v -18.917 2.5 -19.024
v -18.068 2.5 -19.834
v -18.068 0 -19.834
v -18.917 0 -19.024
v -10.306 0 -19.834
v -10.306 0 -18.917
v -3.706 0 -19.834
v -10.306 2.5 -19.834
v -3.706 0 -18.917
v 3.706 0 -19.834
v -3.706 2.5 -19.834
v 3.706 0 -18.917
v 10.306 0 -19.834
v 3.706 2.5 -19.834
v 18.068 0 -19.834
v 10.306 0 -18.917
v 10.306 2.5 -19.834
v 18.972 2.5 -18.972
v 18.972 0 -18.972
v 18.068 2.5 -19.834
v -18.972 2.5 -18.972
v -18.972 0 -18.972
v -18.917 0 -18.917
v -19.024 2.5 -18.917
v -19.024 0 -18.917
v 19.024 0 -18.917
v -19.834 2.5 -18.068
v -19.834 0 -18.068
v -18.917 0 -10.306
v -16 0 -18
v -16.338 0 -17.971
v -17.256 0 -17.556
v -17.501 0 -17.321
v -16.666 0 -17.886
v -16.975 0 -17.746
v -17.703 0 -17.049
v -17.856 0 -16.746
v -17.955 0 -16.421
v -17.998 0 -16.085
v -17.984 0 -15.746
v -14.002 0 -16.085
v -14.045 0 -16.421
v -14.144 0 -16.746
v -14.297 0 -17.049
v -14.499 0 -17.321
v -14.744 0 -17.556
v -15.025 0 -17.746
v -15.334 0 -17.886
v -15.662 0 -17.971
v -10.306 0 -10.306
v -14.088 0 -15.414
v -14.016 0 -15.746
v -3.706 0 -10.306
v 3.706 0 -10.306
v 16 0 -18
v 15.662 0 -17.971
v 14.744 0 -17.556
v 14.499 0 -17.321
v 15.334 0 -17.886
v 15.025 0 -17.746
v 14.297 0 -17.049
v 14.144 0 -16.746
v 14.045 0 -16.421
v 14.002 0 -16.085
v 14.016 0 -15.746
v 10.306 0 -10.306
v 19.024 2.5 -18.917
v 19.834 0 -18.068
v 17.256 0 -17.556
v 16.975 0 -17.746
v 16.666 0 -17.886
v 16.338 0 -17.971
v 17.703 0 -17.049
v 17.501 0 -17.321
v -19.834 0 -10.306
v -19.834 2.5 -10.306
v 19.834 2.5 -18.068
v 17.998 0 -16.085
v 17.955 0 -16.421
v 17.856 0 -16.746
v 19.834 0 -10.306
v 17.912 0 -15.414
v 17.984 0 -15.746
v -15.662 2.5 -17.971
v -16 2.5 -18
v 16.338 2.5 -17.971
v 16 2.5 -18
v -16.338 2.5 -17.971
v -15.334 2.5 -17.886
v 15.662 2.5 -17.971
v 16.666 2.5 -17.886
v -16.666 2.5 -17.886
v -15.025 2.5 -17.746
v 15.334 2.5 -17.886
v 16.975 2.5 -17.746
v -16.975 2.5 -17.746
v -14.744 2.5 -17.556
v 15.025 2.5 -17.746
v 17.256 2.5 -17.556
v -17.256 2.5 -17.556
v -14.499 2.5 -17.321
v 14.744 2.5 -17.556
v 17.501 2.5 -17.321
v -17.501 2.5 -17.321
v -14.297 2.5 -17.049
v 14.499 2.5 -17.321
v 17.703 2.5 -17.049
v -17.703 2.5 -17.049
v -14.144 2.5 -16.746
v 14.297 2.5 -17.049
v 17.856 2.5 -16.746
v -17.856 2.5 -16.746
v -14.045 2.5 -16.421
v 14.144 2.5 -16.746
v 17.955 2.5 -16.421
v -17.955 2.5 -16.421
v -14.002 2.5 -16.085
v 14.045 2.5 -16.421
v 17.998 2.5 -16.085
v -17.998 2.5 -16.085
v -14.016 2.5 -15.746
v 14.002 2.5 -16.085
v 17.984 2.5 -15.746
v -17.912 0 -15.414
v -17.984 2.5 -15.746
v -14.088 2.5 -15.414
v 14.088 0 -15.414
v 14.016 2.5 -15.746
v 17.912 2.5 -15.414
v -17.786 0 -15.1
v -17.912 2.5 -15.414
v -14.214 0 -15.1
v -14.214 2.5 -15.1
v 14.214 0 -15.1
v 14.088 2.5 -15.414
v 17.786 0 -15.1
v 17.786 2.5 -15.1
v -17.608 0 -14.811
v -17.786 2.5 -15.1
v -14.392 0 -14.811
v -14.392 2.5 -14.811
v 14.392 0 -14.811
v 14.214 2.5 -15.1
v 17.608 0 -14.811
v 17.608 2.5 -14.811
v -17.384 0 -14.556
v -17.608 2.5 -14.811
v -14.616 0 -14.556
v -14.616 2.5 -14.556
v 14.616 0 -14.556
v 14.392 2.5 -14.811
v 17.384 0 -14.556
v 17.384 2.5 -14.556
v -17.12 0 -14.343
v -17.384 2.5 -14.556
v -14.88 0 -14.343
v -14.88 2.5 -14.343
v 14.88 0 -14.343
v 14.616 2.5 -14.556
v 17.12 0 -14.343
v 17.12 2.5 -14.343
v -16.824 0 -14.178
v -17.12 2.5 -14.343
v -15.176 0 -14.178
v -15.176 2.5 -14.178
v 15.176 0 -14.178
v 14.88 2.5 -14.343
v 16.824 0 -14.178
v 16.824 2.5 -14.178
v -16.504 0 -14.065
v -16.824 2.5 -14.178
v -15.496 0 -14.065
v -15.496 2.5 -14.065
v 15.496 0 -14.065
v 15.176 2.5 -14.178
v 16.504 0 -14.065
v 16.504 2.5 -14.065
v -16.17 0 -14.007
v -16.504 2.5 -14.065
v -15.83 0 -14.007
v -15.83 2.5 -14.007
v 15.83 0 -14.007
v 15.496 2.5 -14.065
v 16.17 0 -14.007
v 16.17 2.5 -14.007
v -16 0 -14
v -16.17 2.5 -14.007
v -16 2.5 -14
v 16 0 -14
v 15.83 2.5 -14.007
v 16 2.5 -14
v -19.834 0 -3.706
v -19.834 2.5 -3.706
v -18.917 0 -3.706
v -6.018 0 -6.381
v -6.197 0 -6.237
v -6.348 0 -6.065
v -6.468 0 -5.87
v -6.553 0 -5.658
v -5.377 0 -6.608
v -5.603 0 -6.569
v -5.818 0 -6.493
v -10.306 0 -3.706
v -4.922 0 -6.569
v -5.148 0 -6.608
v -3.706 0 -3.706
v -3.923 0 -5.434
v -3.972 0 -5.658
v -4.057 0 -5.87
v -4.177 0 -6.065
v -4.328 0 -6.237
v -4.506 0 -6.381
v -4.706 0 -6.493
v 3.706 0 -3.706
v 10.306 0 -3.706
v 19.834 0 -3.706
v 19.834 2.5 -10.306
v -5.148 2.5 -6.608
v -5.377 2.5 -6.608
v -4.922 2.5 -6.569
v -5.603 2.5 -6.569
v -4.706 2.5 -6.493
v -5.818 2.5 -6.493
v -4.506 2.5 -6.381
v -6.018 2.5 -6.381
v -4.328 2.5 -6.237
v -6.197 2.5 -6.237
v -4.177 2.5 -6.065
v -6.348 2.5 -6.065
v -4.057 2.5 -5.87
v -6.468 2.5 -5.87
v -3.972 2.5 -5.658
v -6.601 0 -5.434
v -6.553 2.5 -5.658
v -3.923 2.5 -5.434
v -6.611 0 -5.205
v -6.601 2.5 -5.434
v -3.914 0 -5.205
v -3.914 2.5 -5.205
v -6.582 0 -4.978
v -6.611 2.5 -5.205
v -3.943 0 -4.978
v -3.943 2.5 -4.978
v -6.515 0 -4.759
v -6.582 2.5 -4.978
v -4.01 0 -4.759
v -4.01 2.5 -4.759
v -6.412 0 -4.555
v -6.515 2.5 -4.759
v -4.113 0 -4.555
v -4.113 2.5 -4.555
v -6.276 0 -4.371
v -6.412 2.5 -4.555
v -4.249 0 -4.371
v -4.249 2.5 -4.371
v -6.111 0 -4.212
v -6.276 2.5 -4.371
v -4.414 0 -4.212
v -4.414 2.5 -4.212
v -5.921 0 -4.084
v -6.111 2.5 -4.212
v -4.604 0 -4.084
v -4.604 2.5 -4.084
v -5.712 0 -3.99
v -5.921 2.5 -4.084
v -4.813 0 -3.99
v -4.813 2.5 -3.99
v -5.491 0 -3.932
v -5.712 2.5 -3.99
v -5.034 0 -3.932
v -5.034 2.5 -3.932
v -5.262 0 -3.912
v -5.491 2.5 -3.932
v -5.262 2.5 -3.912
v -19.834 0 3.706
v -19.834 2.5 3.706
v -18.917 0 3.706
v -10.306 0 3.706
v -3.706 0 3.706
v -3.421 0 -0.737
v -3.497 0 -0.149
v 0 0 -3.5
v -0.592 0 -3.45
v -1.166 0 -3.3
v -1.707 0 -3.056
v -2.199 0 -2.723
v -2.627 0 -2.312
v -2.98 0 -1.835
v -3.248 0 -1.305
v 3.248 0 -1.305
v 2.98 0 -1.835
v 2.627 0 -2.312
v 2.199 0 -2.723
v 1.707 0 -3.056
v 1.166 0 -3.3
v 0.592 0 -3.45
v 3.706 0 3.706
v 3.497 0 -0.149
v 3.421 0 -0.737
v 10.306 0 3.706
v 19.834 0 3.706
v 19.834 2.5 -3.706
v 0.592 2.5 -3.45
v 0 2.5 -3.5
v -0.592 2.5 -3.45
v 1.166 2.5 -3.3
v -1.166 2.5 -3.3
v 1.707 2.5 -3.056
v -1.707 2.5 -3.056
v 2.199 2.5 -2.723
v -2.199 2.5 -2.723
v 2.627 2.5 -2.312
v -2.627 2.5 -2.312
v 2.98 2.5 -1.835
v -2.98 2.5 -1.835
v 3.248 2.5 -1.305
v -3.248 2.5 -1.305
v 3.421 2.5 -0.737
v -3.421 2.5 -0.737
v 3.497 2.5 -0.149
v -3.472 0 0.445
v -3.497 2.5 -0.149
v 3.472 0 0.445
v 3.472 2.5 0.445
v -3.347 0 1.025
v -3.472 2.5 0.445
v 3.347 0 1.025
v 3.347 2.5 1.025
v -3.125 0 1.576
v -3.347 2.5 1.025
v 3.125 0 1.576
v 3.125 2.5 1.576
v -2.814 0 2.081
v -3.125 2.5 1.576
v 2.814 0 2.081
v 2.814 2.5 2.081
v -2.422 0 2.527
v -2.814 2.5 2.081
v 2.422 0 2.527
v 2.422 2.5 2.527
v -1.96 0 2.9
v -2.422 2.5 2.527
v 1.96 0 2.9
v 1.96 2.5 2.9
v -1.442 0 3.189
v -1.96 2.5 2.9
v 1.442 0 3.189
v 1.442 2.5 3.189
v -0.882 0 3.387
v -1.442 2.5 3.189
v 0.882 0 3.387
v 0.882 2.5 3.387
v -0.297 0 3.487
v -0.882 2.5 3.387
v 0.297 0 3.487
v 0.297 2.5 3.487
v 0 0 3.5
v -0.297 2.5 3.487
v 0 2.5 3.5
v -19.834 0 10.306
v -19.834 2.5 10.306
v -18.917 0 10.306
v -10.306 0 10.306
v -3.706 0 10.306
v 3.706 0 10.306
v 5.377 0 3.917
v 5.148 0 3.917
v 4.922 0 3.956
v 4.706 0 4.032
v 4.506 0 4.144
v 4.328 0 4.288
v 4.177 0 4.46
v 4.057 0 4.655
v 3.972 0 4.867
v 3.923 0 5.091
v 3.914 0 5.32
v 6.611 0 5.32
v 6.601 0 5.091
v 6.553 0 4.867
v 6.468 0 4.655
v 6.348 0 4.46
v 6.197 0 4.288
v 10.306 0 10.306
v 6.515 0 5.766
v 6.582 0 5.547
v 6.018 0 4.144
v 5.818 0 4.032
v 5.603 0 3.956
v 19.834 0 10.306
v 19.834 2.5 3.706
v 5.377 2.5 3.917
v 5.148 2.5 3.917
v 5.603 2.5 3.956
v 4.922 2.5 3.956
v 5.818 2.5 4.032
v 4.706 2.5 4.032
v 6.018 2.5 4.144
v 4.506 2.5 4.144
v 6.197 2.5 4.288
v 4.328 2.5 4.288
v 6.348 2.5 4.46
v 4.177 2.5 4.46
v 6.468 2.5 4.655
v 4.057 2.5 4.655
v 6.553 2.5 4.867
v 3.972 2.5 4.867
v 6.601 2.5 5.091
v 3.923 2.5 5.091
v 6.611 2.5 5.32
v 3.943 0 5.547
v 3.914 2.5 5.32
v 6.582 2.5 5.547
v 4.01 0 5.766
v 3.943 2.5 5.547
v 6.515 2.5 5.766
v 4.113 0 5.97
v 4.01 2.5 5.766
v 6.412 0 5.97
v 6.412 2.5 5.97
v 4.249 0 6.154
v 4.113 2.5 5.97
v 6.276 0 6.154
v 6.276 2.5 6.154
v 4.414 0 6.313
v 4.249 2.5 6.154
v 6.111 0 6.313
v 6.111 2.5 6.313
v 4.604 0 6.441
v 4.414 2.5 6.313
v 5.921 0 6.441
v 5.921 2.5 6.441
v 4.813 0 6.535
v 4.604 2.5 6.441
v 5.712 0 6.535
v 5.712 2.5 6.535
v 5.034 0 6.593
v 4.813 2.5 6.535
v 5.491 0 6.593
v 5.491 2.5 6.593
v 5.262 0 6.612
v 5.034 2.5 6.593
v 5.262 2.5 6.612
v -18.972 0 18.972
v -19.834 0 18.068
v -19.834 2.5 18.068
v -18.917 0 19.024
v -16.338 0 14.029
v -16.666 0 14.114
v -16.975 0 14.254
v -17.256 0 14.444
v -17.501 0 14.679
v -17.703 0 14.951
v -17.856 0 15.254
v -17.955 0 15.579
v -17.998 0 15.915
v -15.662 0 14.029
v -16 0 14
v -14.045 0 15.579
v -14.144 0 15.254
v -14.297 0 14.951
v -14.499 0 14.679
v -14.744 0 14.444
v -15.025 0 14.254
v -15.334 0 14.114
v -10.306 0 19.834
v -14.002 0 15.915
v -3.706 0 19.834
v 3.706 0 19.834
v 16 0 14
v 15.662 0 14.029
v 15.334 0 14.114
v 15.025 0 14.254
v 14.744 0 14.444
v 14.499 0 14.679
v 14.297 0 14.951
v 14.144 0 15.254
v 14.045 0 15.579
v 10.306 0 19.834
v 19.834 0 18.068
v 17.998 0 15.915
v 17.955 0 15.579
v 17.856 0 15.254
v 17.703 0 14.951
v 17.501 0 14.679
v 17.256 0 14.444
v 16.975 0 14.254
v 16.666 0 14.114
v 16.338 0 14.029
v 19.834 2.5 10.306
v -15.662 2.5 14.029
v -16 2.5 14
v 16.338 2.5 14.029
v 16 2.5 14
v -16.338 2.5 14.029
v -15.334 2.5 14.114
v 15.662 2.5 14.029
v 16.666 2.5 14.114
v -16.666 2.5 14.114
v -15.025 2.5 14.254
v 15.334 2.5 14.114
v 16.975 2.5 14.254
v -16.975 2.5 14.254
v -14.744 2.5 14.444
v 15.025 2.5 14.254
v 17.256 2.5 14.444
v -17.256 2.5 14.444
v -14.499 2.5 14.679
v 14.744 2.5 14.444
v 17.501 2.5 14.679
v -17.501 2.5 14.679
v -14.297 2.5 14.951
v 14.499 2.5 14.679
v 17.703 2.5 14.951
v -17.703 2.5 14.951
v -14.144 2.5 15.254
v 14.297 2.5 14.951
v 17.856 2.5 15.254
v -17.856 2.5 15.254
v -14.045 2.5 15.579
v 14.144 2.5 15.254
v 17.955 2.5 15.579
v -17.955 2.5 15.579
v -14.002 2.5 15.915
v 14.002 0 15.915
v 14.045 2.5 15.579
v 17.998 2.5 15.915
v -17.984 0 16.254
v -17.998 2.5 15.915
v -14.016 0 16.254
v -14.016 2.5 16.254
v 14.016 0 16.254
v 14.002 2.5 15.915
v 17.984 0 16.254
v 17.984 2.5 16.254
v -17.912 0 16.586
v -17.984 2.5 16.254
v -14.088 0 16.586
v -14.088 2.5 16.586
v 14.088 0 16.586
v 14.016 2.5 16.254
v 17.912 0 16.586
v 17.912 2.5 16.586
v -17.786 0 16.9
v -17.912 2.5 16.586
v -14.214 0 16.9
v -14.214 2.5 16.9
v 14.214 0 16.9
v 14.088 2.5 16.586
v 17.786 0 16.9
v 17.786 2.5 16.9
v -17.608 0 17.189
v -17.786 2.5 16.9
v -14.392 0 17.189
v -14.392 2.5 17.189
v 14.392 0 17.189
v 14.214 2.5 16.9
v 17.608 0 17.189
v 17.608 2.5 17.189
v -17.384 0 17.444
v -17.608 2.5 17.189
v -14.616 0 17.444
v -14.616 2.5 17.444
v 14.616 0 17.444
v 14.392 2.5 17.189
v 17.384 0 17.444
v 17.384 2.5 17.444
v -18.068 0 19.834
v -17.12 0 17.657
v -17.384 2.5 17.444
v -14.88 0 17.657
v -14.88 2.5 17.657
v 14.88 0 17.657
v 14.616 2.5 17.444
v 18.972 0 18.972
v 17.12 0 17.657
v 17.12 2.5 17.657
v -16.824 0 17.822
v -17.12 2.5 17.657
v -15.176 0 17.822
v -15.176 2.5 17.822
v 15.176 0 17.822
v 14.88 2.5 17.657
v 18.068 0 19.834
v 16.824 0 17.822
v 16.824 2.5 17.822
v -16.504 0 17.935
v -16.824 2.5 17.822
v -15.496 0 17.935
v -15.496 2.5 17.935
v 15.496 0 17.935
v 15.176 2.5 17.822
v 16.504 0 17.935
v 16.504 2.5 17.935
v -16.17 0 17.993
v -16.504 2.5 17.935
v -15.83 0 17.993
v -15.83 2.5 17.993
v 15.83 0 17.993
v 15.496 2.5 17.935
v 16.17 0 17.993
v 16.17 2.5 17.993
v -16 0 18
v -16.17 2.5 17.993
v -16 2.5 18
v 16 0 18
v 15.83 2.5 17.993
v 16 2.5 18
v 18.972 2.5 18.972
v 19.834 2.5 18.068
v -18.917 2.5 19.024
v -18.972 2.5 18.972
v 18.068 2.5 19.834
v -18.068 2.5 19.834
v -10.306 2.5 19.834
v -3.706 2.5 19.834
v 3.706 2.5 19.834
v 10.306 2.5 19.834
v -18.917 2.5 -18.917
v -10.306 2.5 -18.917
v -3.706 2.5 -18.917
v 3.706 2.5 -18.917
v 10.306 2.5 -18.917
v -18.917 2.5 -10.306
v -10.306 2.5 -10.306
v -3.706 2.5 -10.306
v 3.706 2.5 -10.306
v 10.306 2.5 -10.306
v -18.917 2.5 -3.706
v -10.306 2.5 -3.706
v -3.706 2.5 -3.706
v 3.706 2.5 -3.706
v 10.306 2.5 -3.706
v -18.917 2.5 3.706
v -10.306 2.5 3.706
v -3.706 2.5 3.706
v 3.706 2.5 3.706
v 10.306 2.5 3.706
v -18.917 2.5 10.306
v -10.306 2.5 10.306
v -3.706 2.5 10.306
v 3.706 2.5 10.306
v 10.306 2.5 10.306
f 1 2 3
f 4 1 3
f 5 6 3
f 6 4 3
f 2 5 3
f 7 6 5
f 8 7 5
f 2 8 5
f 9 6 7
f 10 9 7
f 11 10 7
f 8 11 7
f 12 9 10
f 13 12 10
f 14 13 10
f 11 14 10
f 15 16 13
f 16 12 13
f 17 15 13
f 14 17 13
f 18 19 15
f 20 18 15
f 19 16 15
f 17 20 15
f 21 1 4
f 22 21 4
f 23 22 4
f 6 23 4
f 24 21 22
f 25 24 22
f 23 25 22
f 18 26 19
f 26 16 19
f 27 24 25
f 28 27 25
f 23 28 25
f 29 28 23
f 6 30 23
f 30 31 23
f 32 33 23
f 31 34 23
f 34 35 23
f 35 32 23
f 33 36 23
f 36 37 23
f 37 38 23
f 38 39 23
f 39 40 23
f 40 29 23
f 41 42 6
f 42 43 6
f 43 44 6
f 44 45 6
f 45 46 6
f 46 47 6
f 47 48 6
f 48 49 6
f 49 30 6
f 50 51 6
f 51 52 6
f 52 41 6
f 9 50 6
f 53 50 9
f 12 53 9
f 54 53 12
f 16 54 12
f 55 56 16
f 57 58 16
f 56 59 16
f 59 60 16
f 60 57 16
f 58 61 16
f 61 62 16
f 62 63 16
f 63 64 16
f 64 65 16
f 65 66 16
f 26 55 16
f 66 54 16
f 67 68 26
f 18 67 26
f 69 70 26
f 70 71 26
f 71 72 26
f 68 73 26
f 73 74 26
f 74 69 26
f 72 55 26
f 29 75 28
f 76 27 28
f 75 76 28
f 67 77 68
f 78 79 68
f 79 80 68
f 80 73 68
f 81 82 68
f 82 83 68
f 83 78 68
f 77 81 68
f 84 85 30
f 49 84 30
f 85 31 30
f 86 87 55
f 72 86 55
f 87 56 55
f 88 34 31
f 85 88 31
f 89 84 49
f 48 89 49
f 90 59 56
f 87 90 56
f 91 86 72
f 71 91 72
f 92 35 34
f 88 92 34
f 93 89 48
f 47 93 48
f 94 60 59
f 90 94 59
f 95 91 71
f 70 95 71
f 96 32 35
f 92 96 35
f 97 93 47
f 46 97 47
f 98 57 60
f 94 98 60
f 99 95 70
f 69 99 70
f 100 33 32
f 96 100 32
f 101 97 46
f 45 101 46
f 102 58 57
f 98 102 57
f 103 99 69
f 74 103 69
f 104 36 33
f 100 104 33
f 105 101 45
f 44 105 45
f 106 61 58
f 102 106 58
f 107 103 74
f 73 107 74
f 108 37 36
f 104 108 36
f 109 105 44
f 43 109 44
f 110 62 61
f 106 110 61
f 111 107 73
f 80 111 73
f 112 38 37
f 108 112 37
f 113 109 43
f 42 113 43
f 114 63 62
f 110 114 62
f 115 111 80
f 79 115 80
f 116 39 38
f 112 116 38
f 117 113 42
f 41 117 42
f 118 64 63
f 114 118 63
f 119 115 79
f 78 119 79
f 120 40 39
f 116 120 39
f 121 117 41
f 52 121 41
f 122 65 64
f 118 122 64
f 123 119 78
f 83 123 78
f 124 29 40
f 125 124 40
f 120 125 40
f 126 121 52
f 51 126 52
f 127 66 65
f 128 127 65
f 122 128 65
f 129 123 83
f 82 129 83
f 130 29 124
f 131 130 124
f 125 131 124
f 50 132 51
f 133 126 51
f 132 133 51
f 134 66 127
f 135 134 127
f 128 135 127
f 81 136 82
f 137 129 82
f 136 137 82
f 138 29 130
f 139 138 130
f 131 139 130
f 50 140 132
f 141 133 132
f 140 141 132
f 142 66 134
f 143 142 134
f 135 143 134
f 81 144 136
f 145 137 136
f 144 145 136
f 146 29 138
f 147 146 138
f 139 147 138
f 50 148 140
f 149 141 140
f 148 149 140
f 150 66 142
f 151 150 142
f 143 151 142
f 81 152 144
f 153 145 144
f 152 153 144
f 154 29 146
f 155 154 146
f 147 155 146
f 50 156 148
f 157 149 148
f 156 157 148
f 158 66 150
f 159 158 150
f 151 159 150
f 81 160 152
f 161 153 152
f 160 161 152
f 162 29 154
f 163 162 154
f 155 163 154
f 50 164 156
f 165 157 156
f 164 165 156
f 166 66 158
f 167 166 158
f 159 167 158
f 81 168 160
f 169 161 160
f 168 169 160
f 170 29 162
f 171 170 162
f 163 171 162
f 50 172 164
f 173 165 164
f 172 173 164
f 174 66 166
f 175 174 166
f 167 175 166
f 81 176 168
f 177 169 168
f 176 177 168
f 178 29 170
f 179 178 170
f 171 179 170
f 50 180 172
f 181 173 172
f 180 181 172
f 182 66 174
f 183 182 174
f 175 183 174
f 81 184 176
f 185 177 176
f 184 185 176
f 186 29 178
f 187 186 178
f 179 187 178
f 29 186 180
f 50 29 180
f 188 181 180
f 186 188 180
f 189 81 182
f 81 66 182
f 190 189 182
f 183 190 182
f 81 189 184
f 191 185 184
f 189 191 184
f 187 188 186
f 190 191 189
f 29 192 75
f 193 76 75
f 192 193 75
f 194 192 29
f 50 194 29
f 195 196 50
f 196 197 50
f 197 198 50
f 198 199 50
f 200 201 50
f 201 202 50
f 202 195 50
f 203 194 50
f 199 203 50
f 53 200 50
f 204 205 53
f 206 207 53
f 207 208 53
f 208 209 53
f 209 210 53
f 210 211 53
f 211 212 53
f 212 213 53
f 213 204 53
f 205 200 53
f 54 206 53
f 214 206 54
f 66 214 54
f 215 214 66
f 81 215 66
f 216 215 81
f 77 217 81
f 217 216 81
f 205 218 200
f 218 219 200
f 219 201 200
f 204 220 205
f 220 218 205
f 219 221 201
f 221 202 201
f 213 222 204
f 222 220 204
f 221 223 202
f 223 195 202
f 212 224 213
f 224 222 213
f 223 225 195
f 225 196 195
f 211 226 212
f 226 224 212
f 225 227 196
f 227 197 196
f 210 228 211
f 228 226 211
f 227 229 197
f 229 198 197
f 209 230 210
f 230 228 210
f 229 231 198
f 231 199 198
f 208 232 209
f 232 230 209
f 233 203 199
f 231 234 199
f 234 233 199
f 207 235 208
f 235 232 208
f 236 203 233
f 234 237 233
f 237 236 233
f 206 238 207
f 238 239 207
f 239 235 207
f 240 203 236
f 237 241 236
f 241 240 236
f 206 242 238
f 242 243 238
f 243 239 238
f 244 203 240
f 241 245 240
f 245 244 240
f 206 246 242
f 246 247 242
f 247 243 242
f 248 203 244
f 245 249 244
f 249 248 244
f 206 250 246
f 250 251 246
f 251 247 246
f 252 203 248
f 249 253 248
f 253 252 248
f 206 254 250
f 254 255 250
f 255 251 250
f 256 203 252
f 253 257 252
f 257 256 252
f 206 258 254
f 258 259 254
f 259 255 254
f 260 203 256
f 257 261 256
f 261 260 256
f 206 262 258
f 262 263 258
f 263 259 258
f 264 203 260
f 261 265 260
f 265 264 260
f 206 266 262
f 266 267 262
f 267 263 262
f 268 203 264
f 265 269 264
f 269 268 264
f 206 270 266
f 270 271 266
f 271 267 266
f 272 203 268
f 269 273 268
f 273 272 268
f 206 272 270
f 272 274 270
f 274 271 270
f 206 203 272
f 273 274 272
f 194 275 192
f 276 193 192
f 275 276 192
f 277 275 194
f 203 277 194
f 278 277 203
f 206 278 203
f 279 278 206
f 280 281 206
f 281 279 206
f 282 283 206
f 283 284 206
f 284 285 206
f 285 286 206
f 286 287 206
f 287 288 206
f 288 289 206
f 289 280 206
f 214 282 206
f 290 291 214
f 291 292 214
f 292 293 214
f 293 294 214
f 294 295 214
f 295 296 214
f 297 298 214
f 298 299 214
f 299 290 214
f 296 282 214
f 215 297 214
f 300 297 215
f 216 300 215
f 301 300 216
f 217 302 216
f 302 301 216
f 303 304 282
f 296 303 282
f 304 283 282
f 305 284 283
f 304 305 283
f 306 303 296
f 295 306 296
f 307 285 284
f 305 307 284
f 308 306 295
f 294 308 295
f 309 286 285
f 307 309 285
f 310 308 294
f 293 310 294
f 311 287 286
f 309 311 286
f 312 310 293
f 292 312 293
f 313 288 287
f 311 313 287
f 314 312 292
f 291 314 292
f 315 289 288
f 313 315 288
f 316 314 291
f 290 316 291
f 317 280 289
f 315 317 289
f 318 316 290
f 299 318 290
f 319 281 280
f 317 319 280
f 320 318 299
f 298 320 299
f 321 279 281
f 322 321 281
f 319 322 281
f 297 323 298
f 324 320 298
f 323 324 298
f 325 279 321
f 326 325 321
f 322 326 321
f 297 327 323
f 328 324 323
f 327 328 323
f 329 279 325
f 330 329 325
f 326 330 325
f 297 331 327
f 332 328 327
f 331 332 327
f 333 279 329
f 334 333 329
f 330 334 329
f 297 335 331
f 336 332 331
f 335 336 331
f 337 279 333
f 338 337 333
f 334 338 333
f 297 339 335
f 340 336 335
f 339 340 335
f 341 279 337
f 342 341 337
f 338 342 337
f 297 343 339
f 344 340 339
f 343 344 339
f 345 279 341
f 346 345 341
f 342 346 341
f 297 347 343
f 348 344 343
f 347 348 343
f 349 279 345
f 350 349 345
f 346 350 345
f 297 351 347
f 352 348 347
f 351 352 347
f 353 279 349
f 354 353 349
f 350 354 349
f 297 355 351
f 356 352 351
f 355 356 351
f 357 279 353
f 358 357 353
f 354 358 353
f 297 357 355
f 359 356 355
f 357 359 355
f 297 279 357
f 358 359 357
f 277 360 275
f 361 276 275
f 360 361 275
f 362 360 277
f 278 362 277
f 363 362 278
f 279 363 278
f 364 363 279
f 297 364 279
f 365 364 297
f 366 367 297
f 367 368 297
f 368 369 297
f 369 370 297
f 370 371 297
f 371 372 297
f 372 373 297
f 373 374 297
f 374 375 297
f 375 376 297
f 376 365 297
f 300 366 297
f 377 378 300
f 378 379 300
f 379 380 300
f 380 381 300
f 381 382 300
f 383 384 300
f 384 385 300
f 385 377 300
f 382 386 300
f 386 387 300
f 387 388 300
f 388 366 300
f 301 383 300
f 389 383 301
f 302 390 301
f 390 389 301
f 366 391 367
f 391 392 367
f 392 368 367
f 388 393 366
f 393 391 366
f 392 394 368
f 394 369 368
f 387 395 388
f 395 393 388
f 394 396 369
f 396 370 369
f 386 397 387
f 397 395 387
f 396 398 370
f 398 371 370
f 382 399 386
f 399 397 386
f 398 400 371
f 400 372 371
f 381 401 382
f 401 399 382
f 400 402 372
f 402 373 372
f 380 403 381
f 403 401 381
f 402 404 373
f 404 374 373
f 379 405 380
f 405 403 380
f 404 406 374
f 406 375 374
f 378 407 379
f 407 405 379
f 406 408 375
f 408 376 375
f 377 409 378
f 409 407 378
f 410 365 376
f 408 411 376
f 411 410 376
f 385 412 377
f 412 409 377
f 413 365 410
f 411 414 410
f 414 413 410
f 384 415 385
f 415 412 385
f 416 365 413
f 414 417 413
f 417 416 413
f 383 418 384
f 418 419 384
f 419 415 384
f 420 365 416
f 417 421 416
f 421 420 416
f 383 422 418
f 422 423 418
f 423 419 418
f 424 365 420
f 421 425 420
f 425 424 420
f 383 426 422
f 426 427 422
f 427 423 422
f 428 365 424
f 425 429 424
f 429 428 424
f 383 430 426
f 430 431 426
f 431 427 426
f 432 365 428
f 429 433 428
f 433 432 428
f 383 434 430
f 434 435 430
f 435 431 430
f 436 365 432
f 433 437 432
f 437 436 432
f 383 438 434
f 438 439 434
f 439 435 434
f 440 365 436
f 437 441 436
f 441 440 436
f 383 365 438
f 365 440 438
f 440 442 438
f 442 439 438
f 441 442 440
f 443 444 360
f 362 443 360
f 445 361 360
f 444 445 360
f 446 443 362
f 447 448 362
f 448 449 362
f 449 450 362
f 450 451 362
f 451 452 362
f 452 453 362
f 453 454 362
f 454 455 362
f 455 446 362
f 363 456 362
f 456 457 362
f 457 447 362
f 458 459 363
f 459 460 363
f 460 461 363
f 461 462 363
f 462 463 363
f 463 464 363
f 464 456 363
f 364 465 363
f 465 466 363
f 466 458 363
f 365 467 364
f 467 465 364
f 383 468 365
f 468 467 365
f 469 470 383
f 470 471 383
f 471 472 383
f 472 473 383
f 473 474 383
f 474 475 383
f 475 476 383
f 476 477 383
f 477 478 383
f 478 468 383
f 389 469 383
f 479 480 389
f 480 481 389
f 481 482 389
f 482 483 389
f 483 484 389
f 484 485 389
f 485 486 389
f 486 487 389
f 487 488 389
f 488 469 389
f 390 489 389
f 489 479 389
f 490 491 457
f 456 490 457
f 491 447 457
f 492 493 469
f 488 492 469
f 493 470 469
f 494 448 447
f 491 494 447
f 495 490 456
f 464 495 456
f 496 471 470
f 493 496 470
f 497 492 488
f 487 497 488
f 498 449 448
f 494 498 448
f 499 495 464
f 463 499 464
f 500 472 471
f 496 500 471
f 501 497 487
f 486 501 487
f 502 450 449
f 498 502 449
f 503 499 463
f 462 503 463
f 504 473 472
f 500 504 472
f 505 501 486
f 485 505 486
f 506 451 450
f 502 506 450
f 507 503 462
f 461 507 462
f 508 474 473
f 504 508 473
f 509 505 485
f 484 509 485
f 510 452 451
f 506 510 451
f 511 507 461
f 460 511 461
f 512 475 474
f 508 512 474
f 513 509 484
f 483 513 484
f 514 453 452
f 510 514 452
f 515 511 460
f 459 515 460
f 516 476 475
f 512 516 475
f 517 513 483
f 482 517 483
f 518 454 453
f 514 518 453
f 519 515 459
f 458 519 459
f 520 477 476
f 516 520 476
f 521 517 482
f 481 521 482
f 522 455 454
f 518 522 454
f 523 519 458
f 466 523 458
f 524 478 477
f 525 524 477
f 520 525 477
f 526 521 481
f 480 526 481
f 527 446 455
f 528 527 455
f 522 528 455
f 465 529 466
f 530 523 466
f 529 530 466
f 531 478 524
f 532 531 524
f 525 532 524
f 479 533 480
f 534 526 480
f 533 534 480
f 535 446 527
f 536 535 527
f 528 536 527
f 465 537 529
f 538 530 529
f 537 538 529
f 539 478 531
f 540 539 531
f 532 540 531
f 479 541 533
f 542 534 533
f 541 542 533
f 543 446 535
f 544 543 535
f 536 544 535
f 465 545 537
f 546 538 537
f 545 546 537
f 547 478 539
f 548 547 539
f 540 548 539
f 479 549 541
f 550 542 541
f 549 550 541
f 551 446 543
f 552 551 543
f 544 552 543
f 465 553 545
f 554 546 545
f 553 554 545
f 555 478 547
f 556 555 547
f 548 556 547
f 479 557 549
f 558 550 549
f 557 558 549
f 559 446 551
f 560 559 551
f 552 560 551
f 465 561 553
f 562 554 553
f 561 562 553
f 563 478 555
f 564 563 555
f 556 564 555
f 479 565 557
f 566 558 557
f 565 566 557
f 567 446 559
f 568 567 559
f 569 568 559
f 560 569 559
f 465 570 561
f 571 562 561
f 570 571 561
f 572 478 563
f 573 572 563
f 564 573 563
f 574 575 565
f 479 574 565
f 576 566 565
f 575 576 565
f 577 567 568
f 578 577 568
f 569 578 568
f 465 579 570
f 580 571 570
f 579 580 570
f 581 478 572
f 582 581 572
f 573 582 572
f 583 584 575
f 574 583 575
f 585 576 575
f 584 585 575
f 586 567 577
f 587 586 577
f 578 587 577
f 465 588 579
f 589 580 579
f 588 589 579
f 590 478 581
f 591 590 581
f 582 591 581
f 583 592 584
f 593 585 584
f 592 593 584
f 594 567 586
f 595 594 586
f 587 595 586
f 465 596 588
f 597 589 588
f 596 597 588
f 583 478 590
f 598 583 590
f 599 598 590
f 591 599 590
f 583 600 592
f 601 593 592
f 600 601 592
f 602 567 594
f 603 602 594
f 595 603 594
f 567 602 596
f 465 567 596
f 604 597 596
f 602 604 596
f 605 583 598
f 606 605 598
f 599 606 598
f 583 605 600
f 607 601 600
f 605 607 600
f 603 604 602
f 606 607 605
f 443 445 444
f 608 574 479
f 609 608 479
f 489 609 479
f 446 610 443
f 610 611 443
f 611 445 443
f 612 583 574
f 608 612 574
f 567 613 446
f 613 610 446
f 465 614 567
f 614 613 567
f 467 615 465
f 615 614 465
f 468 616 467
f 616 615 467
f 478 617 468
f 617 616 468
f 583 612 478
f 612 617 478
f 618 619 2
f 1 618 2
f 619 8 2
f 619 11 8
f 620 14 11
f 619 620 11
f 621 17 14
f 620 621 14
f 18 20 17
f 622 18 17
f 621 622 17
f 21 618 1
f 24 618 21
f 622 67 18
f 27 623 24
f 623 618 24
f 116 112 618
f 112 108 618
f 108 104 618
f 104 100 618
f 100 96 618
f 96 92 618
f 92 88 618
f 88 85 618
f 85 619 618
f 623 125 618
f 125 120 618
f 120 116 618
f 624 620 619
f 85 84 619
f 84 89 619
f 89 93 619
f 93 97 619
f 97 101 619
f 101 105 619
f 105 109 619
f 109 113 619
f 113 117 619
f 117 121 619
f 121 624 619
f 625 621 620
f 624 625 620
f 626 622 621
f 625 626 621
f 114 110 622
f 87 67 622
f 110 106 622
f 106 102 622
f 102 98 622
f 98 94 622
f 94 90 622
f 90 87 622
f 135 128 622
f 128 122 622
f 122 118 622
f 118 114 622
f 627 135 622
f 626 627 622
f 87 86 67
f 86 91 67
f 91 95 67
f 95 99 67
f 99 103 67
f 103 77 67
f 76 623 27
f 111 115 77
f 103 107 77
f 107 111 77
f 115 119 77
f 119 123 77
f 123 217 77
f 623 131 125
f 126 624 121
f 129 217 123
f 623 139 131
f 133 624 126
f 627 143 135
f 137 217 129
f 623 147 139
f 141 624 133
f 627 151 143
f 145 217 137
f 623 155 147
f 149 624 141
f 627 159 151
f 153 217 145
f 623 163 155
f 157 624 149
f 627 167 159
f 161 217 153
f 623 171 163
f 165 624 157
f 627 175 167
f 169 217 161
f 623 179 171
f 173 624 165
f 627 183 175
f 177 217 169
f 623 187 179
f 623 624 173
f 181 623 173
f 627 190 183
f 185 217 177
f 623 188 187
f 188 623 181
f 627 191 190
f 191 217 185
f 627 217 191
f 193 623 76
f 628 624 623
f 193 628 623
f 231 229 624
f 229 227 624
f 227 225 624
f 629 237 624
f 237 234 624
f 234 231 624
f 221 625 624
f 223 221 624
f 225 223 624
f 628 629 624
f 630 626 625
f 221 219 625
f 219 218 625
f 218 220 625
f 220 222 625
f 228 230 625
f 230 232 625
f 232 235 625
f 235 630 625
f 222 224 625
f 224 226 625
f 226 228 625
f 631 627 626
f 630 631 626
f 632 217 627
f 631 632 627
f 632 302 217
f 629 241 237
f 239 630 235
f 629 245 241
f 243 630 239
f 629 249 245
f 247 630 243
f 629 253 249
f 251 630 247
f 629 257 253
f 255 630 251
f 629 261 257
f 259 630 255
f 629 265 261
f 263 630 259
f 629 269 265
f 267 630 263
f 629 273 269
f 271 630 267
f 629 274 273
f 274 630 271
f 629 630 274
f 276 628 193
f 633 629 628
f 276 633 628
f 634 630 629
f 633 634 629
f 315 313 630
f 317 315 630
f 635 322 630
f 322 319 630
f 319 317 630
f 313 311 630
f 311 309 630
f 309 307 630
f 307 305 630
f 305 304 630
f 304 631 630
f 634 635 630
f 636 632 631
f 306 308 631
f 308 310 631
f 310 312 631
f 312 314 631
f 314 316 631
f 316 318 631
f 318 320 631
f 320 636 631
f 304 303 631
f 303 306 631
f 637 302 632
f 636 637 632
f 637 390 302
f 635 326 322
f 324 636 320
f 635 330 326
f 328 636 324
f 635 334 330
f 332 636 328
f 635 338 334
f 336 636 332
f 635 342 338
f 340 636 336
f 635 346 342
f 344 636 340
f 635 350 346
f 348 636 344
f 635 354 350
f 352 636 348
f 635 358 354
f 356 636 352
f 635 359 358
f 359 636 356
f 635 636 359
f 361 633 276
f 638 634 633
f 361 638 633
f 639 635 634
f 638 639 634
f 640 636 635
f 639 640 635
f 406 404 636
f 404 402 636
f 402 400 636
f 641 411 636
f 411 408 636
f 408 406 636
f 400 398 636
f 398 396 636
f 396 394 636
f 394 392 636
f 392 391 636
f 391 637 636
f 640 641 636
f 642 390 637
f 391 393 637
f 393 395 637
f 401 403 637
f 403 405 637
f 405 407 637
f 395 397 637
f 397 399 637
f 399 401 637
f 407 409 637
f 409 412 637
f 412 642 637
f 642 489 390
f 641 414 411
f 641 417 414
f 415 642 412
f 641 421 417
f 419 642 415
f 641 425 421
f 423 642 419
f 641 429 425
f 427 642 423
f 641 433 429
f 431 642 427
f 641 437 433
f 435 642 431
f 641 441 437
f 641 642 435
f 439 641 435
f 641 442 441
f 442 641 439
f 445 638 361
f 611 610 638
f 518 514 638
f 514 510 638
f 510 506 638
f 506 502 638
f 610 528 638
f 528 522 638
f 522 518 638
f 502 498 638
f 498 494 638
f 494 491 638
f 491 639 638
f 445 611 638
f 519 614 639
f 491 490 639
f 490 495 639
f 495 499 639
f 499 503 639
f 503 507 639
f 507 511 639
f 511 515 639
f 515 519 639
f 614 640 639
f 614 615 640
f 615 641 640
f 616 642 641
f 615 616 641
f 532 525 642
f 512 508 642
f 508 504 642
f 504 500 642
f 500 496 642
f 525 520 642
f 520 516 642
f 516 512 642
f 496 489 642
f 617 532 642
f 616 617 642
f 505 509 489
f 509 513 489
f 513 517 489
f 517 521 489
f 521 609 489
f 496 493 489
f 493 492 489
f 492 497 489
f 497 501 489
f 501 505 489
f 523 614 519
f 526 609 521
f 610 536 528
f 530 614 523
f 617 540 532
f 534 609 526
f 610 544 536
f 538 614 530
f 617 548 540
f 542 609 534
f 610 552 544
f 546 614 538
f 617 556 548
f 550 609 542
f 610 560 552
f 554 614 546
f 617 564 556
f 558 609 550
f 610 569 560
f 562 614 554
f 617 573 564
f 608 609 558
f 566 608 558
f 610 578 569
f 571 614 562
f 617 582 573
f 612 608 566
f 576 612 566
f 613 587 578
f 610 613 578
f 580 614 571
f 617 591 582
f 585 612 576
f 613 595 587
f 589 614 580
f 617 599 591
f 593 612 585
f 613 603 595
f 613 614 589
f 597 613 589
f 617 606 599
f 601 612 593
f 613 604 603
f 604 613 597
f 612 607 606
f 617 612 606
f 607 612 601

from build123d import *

# Parameters (mm, degrees)
SKETCH1_R           = 26.83
SKETCH1_R_2         = 3.5
SKETCH1_R_3         = 2
BOSS_EXTRUDE1_DEPTH = 2.5
CUT_EXTRUDE2_START  = -10
CUT_EXTRUDE2_DEPTH  = 10
SKETCH2_R           = 1.3
CUT_EXTRUDE3_DEPTH  = 10


with BuildPart() as part:
    # Sketch1 → Boss-Extrude1 (new body)
    with BuildSketch(Plane(origin=(0, 0, 0), x_dir=(1, 0, 0), z_dir=(0, 1, 0))):
        with Locations(Location((0, 0, 0), (0, 0, 270))):
            Circle(SKETCH1_R)
        with Locations(Location((0, 0, 0), (0, 0, 270))):
            Circle(SKETCH1_R_2, mode=Mode.SUBTRACT)
        with Locations(Location((-16.000000001, 16.000000001, 0), (0, 0, 270))):
            Circle(SKETCH1_R_3, mode=Mode.SUBTRACT)
        with Locations(Location((16.000000001, 16.000000001, 0), (0, 0, 270))):
            Circle(SKETCH1_R_3, mode=Mode.SUBTRACT)
        with Locations(Location((16.000000001, -16.000000001, 0), (0, 0, 270))):
            Circle(SKETCH1_R_3, mode=Mode.SUBTRACT)
        with Locations(Location((-16.000000001, -16.000000001, 0), (0, 0, 270))):
            Circle(SKETCH1_R_3, mode=Mode.SUBTRACT)
    extrude(amount=BOSS_EXTRUDE1_DEPTH)

    # Sketch3 → Cut-Extrude2 (cut)
    with BuildSketch(Plane(origin=(0, 2.5, 0), x_dir=(1, 0, 0), z_dir=(0, 1, 0)).offset(CUT_EXTRUDE2_START)):
        with BuildLine():
            Line((-19.833935995, -18.068311569), (-19.833935995, 18.068311569))
            ThreePointArc((-19.833935995, 18.068311569), (-26.83, 0), (-19.833935995, -18.068311569))
        make_face()
        with BuildLine():
            Line((-18.068311569, 19.833935995), (18.068311569, 19.833935995))
            ThreePointArc((18.068311569, 19.833935995), (0, 26.83), (-18.068311569, 19.833935995))
        make_face()
        with BuildLine():
            ThreePointArc((26.83, 0), (25.019926086, 9.687734443), (19.833935995, 18.068311569))
            Line((19.833935995, 18.068311569), (19.833935995, -18.068311569))
            ThreePointArc((19.833935995, -18.068311569), (25.019926086, -9.687734443), (26.83, 0))
        make_face()
        with BuildLine():
            ThreePointArc((-18.068311569, -19.833935995), (0, -26.83), (18.068311569, -19.833935995))
            Line((18.068311569, -19.833935995), (-18.068311569, -19.833935995))
        make_face()
    extrude(amount=CUT_EXTRUDE2_DEPTH, mode=Mode.SUBTRACT)

    # Sketch2 → Cut-Extrude3 (cut)
    with BuildSketch(Plane(origin=(0, 2.5, 0), x_dir=(1, 0, 0), z_dir=(0, 1, 0))):
        with Locations(Location((-5.262430087, 5.262430087, 0), (0, 0, 270))):
            Circle(SKETCH2_R)
        with Locations(Location((5.262430087, -5.262430087, 0), (0, 0, 270))):
            Circle(SKETCH2_R)
    extrude(amount=-CUT_EXTRUDE3_DEPTH, mode=Mode.SUBTRACT)


solid = part.part
